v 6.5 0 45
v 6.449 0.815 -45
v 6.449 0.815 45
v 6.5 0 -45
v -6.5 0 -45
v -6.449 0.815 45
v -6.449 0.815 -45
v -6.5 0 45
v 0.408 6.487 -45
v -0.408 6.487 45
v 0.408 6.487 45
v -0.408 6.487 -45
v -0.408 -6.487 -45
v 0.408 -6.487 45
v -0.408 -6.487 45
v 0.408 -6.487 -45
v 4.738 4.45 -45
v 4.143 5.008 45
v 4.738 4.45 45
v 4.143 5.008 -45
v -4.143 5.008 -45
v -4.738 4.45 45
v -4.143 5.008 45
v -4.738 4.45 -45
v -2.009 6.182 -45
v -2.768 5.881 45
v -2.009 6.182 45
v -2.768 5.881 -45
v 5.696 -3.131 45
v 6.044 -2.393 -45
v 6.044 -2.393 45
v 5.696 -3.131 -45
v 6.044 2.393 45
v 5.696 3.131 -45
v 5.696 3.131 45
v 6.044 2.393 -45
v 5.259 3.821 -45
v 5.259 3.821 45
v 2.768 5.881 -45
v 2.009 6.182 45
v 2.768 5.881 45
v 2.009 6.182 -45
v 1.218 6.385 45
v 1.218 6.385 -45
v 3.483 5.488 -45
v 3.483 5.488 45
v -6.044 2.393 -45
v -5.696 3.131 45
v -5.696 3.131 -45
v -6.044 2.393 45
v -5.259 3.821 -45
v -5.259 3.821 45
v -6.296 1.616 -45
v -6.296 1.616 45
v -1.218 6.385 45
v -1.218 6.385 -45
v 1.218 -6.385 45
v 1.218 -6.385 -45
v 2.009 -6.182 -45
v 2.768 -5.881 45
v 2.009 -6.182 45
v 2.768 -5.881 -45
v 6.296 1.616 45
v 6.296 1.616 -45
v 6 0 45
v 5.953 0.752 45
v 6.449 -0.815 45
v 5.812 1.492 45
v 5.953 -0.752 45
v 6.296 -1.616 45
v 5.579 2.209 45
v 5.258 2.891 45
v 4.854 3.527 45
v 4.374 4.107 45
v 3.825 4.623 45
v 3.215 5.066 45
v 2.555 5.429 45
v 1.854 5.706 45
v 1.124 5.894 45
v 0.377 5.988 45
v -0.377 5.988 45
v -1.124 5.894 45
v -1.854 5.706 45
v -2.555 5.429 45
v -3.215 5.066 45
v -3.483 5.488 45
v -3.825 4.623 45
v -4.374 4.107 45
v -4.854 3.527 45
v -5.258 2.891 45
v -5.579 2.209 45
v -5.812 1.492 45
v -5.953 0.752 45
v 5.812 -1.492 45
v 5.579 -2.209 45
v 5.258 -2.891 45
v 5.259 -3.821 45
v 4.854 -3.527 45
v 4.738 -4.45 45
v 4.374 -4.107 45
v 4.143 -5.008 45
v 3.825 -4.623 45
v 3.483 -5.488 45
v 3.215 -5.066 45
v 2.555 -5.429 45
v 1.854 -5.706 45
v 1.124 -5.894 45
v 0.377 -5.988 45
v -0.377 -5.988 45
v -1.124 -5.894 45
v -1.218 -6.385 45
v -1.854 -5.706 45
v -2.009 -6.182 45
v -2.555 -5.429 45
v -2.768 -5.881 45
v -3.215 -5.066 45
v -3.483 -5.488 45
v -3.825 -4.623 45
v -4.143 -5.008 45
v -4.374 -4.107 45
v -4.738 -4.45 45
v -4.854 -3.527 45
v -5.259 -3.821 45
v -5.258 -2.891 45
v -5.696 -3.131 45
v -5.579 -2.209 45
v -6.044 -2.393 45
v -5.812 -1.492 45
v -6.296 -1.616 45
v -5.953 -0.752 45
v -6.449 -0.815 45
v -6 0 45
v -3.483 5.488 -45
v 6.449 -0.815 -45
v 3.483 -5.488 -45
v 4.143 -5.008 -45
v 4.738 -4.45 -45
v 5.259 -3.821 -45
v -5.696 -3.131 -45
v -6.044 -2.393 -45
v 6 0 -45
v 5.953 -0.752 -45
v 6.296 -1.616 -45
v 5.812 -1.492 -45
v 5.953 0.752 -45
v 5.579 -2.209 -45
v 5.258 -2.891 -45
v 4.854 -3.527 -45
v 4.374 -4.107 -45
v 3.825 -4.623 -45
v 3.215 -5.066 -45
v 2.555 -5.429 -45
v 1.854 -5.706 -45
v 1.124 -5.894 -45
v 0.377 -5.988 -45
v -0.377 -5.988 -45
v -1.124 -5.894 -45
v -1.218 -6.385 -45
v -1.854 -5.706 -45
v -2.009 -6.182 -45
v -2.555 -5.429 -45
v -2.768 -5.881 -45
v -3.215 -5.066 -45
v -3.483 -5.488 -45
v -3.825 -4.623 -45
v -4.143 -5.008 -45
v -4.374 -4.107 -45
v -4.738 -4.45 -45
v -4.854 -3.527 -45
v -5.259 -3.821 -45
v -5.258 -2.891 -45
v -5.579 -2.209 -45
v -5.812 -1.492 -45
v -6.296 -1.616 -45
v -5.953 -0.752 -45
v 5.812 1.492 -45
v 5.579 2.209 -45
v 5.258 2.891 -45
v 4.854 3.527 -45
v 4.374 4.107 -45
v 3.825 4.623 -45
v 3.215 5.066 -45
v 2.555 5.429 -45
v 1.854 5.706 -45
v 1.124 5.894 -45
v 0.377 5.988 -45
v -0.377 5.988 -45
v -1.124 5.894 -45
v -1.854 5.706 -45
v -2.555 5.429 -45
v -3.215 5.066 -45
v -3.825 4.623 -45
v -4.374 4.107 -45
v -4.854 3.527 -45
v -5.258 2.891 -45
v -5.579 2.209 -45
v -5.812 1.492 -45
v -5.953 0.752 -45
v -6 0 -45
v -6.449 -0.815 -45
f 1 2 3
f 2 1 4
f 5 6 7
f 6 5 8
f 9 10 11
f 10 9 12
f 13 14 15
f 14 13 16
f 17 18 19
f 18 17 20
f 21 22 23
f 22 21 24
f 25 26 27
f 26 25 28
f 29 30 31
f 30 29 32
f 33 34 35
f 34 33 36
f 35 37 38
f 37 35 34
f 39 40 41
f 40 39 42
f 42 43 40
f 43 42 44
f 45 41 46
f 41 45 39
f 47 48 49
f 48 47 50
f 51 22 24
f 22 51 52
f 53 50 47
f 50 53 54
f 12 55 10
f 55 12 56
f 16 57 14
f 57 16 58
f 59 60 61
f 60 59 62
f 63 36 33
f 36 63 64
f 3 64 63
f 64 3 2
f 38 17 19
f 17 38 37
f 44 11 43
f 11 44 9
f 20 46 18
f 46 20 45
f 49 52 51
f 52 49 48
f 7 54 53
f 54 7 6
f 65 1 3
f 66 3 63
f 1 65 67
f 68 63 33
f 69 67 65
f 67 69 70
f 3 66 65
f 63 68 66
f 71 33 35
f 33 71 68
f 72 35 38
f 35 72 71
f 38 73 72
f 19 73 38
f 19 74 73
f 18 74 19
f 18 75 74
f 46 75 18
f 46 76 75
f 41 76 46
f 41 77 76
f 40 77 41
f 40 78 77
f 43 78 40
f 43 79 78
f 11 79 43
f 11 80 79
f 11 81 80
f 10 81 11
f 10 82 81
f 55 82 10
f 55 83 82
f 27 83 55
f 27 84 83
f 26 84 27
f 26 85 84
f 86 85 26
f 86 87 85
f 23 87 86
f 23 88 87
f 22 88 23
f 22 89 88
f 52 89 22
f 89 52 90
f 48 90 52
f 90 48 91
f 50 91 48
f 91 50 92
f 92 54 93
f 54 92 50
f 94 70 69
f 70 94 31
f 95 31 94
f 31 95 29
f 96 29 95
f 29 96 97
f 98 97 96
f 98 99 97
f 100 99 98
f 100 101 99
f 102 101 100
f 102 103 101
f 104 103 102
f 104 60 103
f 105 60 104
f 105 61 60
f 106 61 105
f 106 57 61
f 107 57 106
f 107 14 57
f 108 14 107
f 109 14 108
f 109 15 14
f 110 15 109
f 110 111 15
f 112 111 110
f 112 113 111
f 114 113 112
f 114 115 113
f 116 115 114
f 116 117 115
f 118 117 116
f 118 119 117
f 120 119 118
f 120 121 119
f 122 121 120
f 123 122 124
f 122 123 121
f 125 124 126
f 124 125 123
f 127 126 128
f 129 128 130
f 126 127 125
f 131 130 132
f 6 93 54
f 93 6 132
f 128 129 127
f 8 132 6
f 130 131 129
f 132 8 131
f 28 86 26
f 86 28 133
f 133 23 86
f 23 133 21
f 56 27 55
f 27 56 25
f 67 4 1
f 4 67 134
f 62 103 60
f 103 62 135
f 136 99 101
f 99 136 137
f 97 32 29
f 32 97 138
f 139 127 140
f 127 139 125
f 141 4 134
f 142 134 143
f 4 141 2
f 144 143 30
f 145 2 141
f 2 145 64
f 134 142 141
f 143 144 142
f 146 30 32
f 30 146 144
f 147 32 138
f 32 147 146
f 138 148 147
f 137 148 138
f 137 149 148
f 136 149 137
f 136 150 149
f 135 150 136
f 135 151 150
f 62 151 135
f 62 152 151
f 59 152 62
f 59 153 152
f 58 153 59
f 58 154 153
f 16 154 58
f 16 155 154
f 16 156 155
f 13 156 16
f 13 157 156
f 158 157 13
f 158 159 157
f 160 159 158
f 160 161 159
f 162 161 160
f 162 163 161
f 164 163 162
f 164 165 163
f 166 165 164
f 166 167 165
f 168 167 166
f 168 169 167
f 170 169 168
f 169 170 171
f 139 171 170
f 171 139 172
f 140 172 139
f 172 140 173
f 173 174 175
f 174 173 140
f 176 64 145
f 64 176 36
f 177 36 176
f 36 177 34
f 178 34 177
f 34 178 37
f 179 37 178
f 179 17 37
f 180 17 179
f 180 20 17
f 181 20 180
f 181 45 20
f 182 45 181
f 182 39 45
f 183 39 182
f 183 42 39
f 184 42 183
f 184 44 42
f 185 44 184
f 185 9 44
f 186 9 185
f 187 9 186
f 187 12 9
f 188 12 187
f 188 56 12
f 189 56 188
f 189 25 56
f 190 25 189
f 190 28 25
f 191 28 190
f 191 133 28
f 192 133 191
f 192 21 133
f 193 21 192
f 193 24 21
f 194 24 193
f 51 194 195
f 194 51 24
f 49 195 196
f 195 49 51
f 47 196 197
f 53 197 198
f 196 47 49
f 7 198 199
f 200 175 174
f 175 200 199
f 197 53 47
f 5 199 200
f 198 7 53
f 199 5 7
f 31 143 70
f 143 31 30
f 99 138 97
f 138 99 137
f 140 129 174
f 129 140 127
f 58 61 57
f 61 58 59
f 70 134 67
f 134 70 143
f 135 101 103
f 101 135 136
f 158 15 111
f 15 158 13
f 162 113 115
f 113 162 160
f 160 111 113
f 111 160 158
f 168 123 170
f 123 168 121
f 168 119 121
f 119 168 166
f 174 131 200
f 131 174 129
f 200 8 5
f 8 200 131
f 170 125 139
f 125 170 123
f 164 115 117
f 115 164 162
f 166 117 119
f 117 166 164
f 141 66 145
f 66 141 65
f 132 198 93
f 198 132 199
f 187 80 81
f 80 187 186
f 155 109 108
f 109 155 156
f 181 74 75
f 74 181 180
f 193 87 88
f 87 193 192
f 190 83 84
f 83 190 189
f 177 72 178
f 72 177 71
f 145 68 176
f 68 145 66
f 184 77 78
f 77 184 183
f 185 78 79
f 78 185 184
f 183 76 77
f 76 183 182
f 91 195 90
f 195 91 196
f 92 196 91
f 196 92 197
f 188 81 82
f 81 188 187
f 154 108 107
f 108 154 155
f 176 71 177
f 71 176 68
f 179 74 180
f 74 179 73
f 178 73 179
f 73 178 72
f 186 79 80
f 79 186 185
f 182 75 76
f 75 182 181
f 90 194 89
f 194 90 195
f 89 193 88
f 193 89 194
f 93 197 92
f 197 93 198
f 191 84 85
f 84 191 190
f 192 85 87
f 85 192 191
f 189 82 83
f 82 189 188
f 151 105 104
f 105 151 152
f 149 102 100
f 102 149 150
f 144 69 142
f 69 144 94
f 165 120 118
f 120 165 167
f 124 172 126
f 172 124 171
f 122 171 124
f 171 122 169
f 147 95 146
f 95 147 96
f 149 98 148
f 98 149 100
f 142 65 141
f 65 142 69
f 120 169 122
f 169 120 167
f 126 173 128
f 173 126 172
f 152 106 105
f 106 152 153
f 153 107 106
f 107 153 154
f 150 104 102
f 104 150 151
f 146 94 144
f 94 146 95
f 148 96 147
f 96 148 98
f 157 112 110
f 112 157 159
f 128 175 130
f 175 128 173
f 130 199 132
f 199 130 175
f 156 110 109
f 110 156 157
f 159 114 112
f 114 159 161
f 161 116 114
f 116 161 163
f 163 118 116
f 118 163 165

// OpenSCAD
$fn = 50;


difference() {
	union() {
		translate(v = [0, 0, -45.0000000000]) {
			cylinder(h = 90, r = 6.5000000000);
		}
	}
	union() {
		translate(v = [0, 0, -100.0000000000]) {
			cylinder(h = 200, r = 6);
		}
	}
}
